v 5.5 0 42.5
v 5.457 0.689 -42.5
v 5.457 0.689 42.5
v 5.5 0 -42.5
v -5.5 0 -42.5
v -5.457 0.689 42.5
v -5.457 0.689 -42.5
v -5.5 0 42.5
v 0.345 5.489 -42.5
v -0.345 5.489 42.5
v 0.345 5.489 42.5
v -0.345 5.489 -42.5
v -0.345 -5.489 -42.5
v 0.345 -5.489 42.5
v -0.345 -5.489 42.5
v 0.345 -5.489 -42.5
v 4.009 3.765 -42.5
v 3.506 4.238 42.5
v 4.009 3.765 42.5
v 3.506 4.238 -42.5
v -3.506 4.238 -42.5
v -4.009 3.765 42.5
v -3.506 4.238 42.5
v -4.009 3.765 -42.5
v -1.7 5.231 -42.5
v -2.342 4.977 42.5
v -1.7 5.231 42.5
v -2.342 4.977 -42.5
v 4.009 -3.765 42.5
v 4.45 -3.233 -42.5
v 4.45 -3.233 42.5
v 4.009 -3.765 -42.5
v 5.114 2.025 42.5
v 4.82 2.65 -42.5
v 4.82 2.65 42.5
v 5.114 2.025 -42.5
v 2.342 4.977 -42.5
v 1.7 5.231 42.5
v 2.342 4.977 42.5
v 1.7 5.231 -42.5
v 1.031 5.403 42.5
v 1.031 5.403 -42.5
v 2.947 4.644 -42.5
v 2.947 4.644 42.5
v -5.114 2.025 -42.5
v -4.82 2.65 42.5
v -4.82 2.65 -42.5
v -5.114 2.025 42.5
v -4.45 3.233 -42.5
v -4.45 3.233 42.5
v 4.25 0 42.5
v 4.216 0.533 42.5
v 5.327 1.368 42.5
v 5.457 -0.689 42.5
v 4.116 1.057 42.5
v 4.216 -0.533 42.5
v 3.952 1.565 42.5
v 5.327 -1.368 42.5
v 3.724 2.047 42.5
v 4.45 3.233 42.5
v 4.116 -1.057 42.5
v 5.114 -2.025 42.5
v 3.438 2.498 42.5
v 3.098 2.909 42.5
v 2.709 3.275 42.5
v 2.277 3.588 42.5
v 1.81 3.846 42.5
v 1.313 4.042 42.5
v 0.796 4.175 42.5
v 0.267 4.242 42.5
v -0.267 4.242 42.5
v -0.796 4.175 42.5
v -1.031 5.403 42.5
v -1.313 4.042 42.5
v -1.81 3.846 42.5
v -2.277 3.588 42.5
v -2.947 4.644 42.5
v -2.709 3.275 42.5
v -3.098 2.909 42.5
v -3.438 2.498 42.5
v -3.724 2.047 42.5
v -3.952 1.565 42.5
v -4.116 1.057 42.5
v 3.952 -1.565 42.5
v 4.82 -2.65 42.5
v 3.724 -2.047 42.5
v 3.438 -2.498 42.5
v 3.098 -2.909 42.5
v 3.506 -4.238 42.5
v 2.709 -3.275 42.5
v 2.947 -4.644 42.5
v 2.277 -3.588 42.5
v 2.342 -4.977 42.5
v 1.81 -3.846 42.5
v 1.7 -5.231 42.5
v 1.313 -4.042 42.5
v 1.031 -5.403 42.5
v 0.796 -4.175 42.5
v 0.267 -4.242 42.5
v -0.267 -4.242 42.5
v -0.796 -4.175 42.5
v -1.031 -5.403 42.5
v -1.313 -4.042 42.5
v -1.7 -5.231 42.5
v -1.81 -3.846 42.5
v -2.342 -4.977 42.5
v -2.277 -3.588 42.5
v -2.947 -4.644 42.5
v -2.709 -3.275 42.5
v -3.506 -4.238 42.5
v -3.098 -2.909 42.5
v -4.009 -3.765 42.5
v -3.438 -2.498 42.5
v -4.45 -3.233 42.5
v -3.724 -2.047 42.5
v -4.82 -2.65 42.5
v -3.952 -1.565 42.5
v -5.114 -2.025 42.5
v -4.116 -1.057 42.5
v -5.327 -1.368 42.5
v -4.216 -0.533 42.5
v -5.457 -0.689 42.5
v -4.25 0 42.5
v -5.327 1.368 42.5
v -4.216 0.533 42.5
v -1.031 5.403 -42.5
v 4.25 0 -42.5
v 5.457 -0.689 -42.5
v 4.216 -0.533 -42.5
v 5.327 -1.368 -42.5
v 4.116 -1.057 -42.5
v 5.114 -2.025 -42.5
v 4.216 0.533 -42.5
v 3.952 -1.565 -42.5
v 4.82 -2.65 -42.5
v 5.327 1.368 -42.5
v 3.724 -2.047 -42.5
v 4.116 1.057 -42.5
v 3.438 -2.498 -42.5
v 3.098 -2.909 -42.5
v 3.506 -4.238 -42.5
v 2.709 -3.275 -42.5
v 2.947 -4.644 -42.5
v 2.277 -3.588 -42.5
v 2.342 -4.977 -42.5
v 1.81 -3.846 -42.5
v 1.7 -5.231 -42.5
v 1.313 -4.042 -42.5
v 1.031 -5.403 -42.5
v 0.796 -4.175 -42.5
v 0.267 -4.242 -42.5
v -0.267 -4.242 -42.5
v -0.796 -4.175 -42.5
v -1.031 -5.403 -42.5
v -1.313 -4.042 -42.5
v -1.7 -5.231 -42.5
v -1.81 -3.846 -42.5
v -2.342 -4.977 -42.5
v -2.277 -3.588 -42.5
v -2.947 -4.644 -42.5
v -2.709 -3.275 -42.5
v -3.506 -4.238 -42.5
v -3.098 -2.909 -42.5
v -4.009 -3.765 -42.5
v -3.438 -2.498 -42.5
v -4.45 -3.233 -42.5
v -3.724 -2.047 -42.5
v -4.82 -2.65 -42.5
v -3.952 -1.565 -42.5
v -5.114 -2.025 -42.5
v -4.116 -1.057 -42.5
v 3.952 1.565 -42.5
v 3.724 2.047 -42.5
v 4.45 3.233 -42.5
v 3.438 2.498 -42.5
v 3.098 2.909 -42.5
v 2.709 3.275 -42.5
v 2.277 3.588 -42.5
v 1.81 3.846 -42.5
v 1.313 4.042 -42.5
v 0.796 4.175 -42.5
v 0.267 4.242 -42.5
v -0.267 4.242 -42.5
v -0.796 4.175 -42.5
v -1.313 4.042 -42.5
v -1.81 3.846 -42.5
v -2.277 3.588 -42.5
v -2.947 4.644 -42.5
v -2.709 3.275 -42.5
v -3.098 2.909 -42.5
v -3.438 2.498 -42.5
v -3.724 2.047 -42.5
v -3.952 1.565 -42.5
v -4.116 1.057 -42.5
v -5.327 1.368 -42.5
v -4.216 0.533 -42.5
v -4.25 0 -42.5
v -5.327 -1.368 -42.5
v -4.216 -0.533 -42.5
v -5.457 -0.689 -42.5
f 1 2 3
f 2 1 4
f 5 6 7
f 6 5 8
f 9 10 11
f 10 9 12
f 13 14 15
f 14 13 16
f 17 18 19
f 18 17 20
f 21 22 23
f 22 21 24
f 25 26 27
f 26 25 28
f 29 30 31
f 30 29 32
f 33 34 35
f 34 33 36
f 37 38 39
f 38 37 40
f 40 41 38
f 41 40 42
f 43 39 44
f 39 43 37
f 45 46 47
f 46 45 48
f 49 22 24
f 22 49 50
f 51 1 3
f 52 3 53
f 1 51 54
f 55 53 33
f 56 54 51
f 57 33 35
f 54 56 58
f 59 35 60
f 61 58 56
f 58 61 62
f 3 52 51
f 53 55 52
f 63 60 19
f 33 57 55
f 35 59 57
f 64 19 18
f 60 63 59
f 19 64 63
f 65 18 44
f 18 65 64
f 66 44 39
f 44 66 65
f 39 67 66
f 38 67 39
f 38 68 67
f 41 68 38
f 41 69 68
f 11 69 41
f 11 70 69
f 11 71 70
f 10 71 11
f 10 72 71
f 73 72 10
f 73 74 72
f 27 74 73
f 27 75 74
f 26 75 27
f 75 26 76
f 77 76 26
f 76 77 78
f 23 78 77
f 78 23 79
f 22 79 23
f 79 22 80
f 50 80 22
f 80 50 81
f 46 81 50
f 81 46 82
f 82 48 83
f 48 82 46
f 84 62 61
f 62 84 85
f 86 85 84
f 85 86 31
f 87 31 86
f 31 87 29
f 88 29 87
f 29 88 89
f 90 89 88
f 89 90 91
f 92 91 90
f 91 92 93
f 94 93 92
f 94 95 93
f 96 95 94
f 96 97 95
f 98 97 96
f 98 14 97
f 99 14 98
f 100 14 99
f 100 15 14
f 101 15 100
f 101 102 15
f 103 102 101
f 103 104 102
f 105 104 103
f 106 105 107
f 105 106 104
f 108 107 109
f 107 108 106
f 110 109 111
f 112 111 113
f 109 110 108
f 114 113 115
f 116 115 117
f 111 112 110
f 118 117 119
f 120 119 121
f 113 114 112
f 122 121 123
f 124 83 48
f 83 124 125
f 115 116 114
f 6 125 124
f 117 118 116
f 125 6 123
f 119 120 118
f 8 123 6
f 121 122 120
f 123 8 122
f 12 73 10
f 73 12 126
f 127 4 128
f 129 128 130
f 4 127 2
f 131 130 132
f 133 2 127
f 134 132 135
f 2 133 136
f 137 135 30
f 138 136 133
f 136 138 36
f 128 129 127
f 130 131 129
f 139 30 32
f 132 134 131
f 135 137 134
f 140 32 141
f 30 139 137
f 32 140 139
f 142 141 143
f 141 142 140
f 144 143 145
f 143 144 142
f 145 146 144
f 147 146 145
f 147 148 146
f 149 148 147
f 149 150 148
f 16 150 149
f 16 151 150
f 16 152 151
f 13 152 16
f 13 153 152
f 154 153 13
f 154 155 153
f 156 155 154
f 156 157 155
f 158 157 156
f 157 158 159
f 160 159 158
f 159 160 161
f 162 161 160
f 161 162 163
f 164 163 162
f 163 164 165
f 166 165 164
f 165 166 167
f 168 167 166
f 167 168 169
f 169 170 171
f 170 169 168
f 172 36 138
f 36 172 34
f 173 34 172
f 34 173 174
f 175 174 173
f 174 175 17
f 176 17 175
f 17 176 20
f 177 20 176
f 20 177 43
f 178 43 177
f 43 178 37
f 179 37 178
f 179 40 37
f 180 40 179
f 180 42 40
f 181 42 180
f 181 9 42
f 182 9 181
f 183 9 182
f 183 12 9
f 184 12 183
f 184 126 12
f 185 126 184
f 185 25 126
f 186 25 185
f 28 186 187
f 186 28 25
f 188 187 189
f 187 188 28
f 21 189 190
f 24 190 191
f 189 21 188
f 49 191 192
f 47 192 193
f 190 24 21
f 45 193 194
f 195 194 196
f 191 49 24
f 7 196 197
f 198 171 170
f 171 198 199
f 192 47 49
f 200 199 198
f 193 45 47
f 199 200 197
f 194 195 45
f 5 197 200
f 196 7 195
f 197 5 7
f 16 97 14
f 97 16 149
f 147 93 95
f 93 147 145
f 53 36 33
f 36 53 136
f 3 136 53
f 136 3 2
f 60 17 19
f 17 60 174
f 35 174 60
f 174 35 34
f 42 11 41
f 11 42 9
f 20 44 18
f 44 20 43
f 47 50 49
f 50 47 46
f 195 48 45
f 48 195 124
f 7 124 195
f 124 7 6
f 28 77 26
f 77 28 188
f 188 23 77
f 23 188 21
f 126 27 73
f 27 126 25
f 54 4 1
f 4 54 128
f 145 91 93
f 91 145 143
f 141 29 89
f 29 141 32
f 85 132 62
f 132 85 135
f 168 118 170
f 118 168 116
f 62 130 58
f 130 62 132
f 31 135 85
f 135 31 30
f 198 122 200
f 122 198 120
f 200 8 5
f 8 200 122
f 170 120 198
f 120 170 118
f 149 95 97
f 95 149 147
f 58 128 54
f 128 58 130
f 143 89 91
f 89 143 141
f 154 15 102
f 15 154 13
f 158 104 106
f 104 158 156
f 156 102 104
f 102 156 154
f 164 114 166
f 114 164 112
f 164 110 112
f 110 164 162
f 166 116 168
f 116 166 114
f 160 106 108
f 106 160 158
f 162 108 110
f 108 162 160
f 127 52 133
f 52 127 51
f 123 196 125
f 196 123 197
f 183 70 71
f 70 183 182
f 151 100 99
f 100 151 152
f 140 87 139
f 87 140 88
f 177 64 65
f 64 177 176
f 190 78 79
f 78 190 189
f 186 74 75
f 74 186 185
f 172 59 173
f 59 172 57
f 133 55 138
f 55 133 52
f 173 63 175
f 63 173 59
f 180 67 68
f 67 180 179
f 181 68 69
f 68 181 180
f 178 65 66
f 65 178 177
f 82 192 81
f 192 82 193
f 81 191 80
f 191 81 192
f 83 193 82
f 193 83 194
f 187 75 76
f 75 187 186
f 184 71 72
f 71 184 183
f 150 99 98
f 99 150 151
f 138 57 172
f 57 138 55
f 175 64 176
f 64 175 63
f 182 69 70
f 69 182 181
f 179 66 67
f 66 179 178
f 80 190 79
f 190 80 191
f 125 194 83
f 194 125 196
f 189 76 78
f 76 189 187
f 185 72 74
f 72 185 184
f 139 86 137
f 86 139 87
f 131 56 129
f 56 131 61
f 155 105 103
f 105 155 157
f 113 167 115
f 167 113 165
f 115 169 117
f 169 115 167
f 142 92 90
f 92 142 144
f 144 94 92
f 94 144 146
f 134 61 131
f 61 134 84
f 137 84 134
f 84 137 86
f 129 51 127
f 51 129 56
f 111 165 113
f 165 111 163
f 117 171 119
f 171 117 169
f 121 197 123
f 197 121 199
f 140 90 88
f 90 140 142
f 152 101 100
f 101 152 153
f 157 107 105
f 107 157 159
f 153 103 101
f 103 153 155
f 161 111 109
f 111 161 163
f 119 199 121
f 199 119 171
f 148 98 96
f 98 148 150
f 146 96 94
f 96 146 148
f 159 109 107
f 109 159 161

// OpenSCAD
$fn = 50;


difference() {
	union() {
		translate(v = [0, 0, -42.5000000000]) {
			cylinder(h = 85, r = 5.5000000000);
		}
	}
	union() {
		translate(v = [0, 0, -100.0000000000]) {
			cylinder(h = 200, r = 4.2500000000);
		}
	}
}
